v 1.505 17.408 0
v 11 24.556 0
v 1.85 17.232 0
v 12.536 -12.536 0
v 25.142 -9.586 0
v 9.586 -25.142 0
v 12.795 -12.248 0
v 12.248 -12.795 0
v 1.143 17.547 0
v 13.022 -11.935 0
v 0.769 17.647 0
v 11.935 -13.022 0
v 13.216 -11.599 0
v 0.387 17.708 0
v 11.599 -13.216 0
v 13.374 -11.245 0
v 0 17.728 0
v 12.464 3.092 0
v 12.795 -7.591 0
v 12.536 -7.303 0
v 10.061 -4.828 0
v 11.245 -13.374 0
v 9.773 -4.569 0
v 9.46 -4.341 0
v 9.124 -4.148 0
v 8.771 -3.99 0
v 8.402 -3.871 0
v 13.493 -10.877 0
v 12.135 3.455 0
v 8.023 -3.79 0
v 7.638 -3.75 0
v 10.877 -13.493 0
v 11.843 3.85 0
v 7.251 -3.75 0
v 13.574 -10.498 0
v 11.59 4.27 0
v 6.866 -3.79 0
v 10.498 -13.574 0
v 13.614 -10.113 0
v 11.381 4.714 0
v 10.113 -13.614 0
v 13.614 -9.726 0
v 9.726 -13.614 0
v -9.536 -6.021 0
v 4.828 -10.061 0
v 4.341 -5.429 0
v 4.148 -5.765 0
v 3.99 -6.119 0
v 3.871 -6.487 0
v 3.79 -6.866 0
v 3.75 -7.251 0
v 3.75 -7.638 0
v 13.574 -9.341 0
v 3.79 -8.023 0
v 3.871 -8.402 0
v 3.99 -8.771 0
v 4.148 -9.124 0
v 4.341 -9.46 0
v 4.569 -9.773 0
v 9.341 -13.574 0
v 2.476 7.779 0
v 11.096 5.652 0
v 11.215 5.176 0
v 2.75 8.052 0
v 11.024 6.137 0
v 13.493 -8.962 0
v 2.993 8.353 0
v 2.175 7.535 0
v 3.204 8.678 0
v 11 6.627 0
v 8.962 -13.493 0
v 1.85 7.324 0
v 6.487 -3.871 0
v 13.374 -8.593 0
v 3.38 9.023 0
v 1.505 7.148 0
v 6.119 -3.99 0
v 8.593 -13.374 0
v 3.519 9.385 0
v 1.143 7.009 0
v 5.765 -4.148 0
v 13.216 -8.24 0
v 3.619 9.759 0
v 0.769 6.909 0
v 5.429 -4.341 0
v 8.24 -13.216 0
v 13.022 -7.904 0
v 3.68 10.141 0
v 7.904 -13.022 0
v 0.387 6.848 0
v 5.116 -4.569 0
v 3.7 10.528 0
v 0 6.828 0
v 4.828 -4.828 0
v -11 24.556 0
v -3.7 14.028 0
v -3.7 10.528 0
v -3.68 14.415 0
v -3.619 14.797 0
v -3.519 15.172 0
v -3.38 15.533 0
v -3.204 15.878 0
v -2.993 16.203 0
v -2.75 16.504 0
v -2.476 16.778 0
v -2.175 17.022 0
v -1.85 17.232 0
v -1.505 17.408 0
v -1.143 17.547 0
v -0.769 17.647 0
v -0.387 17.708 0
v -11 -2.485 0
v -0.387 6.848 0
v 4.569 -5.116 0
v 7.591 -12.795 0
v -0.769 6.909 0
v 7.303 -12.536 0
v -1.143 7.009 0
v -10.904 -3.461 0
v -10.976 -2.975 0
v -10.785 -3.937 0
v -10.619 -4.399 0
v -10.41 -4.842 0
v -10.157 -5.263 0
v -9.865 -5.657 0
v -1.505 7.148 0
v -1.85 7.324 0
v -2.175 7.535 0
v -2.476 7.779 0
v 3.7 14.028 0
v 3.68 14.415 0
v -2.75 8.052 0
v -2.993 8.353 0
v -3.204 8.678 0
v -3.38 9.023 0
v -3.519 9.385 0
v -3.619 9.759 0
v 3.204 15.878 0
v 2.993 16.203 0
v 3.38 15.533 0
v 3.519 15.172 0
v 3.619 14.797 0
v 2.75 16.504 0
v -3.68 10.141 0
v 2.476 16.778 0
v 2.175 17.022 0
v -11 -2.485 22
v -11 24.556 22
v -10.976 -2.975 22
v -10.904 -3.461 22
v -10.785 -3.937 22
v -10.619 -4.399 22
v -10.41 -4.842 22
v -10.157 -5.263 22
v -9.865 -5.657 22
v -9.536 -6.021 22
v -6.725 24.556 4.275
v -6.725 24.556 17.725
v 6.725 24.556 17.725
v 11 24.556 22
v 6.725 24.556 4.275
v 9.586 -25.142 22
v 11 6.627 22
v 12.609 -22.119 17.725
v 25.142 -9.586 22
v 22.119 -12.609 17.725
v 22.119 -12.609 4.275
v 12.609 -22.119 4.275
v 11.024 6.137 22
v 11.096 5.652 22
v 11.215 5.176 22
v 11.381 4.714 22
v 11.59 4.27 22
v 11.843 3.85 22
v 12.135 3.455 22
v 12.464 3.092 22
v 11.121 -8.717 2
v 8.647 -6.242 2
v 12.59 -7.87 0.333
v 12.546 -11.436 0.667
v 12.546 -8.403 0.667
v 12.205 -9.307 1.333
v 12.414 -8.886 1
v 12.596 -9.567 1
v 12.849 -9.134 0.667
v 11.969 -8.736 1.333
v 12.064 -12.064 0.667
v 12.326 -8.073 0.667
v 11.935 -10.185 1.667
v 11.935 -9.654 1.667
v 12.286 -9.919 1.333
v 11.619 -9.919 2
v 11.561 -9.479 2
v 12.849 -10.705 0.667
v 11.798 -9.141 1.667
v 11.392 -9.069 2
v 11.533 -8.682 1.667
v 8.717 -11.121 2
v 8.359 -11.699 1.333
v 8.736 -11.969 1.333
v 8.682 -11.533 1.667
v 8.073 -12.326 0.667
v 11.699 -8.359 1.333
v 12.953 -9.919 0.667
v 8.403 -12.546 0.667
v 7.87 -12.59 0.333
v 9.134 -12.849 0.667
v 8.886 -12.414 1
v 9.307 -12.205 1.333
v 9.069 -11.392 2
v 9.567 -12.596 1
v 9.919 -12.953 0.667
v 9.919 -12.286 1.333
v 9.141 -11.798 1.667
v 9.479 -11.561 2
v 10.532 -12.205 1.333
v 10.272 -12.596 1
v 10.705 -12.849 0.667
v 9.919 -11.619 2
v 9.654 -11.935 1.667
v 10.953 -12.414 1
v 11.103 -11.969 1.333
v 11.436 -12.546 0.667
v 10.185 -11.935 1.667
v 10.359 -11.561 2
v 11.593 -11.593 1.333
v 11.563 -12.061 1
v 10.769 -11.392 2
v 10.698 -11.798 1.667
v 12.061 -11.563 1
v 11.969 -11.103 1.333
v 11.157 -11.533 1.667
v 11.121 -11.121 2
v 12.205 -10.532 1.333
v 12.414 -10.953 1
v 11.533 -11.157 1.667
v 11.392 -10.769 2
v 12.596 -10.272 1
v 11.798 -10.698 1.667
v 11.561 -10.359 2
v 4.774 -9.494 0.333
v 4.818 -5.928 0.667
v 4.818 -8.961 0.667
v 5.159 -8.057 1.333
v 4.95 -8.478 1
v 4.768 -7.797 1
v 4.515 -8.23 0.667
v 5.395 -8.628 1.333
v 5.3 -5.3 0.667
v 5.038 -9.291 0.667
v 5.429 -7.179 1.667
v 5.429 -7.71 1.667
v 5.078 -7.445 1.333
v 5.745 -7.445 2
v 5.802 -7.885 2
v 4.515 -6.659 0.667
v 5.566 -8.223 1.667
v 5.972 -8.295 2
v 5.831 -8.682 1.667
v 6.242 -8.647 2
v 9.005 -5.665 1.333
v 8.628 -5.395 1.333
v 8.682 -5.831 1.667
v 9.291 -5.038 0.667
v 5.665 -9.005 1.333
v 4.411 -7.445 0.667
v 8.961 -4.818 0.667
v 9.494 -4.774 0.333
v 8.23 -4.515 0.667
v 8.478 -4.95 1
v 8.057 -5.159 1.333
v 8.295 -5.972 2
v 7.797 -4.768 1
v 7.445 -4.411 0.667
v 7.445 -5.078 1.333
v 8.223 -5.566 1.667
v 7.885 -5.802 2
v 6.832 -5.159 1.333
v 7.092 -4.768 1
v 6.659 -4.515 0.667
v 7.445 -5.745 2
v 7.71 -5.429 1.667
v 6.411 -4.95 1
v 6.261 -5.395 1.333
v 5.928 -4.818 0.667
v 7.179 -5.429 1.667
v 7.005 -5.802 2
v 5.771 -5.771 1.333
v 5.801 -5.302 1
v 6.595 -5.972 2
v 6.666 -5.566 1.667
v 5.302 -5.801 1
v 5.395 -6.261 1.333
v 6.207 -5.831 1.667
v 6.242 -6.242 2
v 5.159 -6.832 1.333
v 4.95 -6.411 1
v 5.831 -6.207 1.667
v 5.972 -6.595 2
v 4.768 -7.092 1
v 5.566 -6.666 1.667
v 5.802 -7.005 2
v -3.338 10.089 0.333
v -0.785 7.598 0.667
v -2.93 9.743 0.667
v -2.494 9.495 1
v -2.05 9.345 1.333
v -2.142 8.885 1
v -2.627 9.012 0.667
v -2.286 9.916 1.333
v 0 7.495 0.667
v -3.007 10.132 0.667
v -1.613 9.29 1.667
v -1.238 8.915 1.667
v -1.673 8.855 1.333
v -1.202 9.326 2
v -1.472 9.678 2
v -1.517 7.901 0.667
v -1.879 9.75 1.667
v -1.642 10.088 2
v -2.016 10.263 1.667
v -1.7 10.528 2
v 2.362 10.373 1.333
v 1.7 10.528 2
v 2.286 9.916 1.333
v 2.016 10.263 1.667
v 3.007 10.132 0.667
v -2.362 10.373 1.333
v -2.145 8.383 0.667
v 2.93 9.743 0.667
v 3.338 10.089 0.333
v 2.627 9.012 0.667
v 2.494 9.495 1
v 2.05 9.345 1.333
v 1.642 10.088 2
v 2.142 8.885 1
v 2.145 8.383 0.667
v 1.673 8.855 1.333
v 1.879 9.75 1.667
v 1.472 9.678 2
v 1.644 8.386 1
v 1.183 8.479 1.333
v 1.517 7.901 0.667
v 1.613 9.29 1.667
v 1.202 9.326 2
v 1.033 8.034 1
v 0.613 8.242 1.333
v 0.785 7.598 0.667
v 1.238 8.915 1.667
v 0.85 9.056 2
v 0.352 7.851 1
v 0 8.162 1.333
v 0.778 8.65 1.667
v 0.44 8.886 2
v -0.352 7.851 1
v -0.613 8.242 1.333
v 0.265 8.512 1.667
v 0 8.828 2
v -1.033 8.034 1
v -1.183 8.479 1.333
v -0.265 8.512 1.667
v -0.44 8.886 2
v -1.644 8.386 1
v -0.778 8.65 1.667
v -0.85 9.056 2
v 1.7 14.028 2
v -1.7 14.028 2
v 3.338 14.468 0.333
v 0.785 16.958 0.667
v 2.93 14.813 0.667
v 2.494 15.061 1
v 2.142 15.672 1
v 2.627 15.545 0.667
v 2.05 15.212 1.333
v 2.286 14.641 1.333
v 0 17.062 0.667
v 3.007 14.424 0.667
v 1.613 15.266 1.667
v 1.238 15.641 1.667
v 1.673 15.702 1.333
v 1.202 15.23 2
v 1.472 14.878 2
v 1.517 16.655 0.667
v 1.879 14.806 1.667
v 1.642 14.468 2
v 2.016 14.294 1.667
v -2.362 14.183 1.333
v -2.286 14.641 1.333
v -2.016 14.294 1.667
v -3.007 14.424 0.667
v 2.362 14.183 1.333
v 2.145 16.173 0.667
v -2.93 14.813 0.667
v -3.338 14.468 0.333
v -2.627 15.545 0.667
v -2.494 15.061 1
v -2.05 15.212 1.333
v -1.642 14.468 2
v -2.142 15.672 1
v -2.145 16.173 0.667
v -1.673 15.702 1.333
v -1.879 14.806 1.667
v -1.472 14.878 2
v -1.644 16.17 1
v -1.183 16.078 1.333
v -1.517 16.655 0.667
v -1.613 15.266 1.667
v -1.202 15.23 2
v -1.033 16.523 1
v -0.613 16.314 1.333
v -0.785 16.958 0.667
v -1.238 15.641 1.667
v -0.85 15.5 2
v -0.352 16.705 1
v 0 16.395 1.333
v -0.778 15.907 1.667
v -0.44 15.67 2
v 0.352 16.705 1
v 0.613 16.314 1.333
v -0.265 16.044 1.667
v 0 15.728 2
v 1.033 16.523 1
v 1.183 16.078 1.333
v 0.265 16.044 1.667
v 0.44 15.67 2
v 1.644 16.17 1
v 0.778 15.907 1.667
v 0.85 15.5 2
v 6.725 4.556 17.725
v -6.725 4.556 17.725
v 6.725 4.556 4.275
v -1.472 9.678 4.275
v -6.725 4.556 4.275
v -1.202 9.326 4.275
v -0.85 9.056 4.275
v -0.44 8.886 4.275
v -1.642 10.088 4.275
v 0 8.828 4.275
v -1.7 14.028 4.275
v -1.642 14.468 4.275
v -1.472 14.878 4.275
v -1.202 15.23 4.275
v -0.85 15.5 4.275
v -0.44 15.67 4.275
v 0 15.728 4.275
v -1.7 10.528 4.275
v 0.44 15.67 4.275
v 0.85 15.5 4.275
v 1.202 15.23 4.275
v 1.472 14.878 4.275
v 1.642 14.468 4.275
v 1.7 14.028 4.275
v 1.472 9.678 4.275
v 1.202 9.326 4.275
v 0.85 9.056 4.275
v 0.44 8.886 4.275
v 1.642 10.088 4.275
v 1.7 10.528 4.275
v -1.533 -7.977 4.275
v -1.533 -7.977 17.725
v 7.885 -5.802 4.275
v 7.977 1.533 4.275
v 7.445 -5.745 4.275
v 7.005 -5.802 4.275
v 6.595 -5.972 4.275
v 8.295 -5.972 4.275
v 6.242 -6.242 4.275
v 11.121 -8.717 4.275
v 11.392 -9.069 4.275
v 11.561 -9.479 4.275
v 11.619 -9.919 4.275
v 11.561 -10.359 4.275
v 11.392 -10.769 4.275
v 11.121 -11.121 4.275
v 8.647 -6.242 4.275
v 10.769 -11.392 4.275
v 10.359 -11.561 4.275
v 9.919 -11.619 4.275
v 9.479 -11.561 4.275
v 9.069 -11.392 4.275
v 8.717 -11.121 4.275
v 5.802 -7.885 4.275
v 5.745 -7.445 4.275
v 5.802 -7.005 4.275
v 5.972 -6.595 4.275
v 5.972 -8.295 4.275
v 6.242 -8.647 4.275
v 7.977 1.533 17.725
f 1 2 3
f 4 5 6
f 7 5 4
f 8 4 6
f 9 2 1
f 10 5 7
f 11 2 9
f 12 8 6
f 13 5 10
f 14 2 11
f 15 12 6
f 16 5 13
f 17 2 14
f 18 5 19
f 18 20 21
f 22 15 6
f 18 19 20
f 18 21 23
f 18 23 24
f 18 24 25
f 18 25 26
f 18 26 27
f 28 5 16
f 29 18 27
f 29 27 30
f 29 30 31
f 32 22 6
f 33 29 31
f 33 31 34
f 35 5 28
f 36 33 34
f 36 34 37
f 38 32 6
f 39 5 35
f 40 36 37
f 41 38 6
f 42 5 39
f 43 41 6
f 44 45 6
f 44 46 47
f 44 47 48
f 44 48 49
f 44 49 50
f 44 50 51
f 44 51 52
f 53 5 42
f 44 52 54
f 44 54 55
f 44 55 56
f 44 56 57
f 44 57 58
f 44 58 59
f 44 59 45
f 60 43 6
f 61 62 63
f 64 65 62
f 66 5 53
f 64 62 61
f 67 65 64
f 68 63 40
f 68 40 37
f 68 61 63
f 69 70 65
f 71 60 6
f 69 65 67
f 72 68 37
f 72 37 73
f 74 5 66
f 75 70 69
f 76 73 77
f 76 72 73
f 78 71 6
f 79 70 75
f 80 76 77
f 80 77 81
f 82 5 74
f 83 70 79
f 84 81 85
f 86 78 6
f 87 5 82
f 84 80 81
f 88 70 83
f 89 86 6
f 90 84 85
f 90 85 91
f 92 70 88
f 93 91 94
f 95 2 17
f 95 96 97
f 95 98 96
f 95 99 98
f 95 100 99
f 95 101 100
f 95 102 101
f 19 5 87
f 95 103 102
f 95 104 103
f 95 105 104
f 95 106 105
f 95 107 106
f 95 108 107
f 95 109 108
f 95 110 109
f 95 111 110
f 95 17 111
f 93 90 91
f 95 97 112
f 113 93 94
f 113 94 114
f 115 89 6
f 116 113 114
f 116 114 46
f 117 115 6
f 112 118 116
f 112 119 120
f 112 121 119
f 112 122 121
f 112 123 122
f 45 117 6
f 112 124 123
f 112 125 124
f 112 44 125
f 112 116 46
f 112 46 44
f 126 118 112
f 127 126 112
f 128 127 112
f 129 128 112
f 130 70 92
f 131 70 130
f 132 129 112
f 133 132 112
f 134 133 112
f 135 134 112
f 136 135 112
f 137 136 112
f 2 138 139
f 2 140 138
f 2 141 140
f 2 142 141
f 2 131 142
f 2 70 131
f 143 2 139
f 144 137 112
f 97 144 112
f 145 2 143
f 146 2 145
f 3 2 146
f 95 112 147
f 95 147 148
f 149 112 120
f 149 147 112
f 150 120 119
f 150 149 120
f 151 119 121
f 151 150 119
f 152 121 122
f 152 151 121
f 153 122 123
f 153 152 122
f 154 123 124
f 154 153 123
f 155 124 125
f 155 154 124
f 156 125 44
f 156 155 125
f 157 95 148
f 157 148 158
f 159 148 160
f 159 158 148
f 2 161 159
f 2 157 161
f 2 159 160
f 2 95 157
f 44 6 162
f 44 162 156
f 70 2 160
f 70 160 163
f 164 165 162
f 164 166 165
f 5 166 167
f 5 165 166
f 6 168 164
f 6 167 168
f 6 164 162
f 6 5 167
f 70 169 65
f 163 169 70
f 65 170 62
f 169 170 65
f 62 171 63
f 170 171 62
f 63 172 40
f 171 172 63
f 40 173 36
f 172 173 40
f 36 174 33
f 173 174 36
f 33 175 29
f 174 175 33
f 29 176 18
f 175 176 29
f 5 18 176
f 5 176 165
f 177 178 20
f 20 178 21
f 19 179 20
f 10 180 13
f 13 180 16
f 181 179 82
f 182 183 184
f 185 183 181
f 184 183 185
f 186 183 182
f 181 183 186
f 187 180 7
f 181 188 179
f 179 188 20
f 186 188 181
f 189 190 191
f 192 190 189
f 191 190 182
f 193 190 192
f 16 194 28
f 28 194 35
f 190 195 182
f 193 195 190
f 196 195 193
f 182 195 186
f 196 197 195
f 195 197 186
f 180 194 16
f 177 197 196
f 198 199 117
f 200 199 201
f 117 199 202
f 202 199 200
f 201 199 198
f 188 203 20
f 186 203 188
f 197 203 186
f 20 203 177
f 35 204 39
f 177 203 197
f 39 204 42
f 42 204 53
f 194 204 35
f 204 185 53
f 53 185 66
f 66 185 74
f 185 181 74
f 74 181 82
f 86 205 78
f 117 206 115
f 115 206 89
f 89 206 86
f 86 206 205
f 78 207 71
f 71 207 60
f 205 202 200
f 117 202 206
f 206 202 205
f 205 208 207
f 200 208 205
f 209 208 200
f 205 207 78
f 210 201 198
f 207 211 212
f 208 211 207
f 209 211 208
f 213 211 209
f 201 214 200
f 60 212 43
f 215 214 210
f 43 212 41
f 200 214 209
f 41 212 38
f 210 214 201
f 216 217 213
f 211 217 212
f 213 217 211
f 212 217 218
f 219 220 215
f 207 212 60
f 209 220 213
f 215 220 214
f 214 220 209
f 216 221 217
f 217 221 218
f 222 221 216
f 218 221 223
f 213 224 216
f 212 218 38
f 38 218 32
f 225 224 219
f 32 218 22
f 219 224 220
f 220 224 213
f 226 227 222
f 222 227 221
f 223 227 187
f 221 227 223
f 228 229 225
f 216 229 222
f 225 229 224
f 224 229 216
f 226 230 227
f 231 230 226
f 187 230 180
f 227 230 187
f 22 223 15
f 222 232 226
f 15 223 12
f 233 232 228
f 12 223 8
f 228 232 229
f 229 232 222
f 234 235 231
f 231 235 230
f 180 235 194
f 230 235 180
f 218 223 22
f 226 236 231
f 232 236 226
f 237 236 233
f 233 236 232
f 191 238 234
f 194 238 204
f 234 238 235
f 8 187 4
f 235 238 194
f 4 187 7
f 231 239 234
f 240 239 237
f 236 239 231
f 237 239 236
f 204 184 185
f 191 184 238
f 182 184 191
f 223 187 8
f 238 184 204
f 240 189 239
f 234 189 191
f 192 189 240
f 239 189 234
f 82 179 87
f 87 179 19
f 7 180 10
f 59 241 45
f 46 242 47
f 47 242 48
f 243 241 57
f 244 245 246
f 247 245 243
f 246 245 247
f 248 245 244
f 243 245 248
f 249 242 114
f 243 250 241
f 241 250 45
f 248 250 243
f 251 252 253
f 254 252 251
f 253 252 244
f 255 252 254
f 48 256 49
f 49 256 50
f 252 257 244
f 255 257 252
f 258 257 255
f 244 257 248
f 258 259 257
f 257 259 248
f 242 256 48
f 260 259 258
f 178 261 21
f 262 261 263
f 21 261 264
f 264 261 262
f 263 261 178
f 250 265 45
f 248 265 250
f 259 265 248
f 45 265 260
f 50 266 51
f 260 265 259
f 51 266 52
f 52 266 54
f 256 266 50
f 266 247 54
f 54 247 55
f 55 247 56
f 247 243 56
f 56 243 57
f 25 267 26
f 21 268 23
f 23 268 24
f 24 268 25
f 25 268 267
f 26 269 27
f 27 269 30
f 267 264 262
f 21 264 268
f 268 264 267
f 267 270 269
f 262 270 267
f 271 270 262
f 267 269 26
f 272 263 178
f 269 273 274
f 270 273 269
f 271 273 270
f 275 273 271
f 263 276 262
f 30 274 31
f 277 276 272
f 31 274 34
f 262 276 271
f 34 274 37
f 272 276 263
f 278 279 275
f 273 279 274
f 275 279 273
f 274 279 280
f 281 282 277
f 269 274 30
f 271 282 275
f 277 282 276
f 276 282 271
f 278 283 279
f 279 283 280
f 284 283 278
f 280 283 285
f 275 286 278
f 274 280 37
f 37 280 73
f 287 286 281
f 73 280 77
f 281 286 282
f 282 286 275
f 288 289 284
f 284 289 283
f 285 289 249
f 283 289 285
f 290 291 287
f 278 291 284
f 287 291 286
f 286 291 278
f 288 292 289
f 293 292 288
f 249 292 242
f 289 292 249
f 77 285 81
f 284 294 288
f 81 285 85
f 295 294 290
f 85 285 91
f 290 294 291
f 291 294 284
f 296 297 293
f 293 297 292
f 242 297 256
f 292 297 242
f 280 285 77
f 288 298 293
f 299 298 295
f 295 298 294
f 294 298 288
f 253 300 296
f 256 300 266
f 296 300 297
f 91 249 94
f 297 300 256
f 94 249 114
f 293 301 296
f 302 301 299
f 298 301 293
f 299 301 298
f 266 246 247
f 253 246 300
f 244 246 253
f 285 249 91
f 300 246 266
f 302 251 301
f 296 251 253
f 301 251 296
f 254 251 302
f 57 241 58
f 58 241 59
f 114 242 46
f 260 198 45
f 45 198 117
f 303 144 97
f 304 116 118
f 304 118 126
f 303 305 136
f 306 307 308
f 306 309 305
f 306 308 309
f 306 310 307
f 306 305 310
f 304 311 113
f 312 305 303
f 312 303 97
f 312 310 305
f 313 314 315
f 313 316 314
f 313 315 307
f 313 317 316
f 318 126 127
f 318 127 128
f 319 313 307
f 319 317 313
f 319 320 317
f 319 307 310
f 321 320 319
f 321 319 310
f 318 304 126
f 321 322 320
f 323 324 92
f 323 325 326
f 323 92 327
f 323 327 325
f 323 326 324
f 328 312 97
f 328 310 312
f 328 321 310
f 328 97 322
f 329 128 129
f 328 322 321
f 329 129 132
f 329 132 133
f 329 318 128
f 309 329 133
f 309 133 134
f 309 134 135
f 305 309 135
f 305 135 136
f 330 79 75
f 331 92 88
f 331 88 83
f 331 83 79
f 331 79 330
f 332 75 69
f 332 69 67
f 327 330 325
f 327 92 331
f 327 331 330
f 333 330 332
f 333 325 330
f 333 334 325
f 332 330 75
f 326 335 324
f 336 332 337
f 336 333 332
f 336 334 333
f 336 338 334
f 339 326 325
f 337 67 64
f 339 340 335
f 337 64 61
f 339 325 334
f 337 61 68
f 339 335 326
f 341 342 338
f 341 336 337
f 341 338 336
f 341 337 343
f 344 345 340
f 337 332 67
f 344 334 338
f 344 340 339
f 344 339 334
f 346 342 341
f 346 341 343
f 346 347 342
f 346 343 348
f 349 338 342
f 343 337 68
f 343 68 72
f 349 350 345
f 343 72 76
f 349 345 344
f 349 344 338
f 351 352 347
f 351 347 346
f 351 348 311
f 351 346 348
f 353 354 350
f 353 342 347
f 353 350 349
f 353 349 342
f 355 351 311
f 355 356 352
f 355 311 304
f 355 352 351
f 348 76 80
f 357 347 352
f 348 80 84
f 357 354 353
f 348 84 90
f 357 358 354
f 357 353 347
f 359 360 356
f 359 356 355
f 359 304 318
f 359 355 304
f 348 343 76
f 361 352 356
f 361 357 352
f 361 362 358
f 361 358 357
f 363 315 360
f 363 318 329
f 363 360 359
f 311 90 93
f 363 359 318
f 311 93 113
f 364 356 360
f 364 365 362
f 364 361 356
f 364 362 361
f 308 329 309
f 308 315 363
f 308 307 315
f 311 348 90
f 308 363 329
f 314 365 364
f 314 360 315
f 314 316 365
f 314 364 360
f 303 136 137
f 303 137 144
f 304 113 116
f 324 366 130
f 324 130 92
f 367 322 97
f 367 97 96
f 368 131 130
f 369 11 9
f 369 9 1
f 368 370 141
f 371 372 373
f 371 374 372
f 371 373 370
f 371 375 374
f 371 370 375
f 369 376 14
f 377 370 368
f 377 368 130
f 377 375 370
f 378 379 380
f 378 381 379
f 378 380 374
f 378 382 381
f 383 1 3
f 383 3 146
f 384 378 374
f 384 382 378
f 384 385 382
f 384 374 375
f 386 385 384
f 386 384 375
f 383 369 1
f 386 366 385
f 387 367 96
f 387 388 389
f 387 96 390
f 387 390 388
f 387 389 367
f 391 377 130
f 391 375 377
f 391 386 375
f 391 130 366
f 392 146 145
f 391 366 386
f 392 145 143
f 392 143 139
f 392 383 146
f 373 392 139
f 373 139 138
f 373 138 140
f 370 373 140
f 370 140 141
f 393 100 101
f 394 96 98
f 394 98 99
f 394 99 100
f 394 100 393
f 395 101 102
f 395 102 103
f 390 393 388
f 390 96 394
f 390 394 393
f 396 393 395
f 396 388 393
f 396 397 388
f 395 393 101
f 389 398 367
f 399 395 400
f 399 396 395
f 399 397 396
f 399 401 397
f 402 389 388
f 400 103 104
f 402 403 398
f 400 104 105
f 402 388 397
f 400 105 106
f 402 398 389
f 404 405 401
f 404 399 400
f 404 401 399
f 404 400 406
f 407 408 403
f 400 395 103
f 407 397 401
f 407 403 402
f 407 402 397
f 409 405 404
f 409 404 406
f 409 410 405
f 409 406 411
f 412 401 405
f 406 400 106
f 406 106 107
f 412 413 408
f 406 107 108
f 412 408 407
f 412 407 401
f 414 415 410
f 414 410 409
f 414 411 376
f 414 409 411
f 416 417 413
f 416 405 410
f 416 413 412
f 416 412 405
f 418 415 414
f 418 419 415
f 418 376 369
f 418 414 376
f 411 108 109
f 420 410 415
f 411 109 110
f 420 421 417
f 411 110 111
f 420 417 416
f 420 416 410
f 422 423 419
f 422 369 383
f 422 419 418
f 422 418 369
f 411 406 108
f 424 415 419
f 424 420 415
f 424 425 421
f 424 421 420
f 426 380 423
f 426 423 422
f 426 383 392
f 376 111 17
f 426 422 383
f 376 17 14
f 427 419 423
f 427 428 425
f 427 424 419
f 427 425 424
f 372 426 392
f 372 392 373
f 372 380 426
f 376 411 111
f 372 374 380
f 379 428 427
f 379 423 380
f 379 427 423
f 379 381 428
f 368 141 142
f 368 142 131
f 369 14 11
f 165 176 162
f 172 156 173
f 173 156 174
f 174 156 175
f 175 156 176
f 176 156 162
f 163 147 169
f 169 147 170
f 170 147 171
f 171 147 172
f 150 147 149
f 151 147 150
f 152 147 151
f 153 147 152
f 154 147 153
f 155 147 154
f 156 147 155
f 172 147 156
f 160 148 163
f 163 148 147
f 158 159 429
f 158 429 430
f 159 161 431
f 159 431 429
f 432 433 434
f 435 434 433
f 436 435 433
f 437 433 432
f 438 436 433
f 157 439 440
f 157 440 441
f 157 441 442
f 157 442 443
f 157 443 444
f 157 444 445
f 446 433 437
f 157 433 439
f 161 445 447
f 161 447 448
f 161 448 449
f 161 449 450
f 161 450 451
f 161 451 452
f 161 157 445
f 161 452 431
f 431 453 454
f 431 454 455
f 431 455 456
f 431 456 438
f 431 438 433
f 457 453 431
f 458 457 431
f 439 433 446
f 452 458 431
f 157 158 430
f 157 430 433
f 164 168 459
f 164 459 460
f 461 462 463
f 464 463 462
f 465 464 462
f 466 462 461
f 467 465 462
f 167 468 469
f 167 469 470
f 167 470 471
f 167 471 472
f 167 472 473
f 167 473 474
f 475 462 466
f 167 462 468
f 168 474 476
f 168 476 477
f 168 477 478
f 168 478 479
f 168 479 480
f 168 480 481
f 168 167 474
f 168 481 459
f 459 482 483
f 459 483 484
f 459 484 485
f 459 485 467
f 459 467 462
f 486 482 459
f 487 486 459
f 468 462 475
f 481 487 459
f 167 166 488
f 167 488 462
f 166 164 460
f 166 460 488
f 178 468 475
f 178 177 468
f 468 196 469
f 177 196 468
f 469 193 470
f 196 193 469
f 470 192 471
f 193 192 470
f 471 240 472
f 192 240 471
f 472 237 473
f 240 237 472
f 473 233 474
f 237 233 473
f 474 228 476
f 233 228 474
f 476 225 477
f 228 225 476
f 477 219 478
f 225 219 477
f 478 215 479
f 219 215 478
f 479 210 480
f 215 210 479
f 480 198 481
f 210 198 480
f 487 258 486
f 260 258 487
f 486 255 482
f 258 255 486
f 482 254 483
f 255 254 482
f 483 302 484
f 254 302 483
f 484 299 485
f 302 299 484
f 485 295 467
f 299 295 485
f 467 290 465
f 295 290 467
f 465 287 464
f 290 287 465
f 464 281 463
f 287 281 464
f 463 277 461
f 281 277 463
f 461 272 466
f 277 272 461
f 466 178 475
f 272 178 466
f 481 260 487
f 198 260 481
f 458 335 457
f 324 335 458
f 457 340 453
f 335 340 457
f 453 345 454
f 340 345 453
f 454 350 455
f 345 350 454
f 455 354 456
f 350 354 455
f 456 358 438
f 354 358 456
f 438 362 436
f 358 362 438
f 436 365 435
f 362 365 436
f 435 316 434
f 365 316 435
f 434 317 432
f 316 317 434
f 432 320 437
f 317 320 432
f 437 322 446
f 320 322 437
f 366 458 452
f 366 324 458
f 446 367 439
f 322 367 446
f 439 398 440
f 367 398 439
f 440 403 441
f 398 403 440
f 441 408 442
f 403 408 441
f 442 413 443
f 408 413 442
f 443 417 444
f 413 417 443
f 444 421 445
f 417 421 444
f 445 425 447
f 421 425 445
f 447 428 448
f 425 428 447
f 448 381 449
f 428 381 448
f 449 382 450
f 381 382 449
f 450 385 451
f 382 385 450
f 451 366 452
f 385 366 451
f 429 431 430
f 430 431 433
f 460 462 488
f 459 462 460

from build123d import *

# Parameters (mm, degrees)
PAD_DEPTH       = 22
SKETCH001_W     = 13.45
SKETCH001_H     = 13.45
POCKET_DEPTH    = 20
SKETCH002_W     = 13.45
SKETCH002_H     = 13.45
POCKET001_DEPTH = 20
POCKET002_DEPTH = 5
CHAMFER_SIZE    = 2
FILLET_R        = 5


with BuildPart() as part:
    # Sketch → Pad (new body)
    with BuildSketch(Plane.XY):
        Polygon((-11, 24.556349), (11, 24.556349), (11, 4.556349), (25.142136, -9.585786), (9.585786, -25.142136), (-11, -4.556349), align=None)
    extrude(amount=PAD_DEPTH)

    # Sketch001 (on Face4 of Pad) → Pocket (cut)
    with BuildSketch(Plane(origin=(17.363961, -17.363961, 0), x_dir=(0.707107, 0.707107, 0), z_dir=(0.707107, -0.707107, 0))):
        with Locations((0, 11)):
            Rectangle(SKETCH001_W, SKETCH001_H)
    extrude(amount=-POCKET_DEPTH, mode=Mode.SUBTRACT)

    # Sketch002 (on Face1 of Pocket) → Pocket001 (cut)
    with BuildSketch(Plane(origin=(0, 24.556349, 0), x_dir=(-1, 0, 0), z_dir=(0, 1, 0))):
        with Locations((0, 11)):
            Rectangle(SKETCH002_W, SKETCH002_H)
    extrude(amount=-POCKET001_DEPTH, mode=Mode.SUBTRACT)

    # Sketch003 (on Face3 of Pocket001) → Pocket002 (cut)
    with BuildSketch(Plane(origin=(0, 0, 0), x_dir=(1, 0, 0), z_dir=(0, 0, -1))):
        with BuildLine():
            ThreePointArc((1.7, -10.528175), (0, -8.828175), (-1.7, -10.528175))
            Line((-1.7, -10.528175), (-1.7, -14.028175))
            ThreePointArc((-1.7, -14.028175), (0, -15.728175), (1.7, -14.028175))
            Line((1.7, -10.528175), (1.7, -14.028175))
        make_face()
        with BuildLine():
            Line((8.717336, 11.121499), (6.242462, 8.646625))
            ThreePointArc((6.242462, 8.646625), (6.242462, 6.242462), (8.646625, 6.242462))
            Line((11.121499, 8.717336), (8.646625, 6.242462))
            ThreePointArc((11.121499, 8.717336), (11.121499, 11.121499), (8.717336, 11.121499))
        make_face()
    extrude(amount=-POCKET002_DEPTH, mode=Mode.SUBTRACT)

    # Chamfer
    chamfer_edges = [part.edges().sort_by_distance(p)[0] for p in [
        (9.884062, -7.479899, 0),
        (11.121499, -11.121499, 0),
        (7.479899, -9.884062, 0),
        (6.242462, -6.242462, 0),
        (0, 8.828175, 0),
        (1.7, 12.278175, 0),
        (0, 15.728175, 0),
        (-1.7, 12.278175, 0),
    ]]
    chamfer(chamfer_edges, length=CHAMFER_SIZE)

    # Fillet
    fillet_edges = [part.edges().sort_by_distance(p)[0] for p in [
        (-11, -4.556349, 11),
        (11, 4.556349, 11),
    ]]
    fillet(fillet_edges, radius=FILLET_R)


solid = part.part
